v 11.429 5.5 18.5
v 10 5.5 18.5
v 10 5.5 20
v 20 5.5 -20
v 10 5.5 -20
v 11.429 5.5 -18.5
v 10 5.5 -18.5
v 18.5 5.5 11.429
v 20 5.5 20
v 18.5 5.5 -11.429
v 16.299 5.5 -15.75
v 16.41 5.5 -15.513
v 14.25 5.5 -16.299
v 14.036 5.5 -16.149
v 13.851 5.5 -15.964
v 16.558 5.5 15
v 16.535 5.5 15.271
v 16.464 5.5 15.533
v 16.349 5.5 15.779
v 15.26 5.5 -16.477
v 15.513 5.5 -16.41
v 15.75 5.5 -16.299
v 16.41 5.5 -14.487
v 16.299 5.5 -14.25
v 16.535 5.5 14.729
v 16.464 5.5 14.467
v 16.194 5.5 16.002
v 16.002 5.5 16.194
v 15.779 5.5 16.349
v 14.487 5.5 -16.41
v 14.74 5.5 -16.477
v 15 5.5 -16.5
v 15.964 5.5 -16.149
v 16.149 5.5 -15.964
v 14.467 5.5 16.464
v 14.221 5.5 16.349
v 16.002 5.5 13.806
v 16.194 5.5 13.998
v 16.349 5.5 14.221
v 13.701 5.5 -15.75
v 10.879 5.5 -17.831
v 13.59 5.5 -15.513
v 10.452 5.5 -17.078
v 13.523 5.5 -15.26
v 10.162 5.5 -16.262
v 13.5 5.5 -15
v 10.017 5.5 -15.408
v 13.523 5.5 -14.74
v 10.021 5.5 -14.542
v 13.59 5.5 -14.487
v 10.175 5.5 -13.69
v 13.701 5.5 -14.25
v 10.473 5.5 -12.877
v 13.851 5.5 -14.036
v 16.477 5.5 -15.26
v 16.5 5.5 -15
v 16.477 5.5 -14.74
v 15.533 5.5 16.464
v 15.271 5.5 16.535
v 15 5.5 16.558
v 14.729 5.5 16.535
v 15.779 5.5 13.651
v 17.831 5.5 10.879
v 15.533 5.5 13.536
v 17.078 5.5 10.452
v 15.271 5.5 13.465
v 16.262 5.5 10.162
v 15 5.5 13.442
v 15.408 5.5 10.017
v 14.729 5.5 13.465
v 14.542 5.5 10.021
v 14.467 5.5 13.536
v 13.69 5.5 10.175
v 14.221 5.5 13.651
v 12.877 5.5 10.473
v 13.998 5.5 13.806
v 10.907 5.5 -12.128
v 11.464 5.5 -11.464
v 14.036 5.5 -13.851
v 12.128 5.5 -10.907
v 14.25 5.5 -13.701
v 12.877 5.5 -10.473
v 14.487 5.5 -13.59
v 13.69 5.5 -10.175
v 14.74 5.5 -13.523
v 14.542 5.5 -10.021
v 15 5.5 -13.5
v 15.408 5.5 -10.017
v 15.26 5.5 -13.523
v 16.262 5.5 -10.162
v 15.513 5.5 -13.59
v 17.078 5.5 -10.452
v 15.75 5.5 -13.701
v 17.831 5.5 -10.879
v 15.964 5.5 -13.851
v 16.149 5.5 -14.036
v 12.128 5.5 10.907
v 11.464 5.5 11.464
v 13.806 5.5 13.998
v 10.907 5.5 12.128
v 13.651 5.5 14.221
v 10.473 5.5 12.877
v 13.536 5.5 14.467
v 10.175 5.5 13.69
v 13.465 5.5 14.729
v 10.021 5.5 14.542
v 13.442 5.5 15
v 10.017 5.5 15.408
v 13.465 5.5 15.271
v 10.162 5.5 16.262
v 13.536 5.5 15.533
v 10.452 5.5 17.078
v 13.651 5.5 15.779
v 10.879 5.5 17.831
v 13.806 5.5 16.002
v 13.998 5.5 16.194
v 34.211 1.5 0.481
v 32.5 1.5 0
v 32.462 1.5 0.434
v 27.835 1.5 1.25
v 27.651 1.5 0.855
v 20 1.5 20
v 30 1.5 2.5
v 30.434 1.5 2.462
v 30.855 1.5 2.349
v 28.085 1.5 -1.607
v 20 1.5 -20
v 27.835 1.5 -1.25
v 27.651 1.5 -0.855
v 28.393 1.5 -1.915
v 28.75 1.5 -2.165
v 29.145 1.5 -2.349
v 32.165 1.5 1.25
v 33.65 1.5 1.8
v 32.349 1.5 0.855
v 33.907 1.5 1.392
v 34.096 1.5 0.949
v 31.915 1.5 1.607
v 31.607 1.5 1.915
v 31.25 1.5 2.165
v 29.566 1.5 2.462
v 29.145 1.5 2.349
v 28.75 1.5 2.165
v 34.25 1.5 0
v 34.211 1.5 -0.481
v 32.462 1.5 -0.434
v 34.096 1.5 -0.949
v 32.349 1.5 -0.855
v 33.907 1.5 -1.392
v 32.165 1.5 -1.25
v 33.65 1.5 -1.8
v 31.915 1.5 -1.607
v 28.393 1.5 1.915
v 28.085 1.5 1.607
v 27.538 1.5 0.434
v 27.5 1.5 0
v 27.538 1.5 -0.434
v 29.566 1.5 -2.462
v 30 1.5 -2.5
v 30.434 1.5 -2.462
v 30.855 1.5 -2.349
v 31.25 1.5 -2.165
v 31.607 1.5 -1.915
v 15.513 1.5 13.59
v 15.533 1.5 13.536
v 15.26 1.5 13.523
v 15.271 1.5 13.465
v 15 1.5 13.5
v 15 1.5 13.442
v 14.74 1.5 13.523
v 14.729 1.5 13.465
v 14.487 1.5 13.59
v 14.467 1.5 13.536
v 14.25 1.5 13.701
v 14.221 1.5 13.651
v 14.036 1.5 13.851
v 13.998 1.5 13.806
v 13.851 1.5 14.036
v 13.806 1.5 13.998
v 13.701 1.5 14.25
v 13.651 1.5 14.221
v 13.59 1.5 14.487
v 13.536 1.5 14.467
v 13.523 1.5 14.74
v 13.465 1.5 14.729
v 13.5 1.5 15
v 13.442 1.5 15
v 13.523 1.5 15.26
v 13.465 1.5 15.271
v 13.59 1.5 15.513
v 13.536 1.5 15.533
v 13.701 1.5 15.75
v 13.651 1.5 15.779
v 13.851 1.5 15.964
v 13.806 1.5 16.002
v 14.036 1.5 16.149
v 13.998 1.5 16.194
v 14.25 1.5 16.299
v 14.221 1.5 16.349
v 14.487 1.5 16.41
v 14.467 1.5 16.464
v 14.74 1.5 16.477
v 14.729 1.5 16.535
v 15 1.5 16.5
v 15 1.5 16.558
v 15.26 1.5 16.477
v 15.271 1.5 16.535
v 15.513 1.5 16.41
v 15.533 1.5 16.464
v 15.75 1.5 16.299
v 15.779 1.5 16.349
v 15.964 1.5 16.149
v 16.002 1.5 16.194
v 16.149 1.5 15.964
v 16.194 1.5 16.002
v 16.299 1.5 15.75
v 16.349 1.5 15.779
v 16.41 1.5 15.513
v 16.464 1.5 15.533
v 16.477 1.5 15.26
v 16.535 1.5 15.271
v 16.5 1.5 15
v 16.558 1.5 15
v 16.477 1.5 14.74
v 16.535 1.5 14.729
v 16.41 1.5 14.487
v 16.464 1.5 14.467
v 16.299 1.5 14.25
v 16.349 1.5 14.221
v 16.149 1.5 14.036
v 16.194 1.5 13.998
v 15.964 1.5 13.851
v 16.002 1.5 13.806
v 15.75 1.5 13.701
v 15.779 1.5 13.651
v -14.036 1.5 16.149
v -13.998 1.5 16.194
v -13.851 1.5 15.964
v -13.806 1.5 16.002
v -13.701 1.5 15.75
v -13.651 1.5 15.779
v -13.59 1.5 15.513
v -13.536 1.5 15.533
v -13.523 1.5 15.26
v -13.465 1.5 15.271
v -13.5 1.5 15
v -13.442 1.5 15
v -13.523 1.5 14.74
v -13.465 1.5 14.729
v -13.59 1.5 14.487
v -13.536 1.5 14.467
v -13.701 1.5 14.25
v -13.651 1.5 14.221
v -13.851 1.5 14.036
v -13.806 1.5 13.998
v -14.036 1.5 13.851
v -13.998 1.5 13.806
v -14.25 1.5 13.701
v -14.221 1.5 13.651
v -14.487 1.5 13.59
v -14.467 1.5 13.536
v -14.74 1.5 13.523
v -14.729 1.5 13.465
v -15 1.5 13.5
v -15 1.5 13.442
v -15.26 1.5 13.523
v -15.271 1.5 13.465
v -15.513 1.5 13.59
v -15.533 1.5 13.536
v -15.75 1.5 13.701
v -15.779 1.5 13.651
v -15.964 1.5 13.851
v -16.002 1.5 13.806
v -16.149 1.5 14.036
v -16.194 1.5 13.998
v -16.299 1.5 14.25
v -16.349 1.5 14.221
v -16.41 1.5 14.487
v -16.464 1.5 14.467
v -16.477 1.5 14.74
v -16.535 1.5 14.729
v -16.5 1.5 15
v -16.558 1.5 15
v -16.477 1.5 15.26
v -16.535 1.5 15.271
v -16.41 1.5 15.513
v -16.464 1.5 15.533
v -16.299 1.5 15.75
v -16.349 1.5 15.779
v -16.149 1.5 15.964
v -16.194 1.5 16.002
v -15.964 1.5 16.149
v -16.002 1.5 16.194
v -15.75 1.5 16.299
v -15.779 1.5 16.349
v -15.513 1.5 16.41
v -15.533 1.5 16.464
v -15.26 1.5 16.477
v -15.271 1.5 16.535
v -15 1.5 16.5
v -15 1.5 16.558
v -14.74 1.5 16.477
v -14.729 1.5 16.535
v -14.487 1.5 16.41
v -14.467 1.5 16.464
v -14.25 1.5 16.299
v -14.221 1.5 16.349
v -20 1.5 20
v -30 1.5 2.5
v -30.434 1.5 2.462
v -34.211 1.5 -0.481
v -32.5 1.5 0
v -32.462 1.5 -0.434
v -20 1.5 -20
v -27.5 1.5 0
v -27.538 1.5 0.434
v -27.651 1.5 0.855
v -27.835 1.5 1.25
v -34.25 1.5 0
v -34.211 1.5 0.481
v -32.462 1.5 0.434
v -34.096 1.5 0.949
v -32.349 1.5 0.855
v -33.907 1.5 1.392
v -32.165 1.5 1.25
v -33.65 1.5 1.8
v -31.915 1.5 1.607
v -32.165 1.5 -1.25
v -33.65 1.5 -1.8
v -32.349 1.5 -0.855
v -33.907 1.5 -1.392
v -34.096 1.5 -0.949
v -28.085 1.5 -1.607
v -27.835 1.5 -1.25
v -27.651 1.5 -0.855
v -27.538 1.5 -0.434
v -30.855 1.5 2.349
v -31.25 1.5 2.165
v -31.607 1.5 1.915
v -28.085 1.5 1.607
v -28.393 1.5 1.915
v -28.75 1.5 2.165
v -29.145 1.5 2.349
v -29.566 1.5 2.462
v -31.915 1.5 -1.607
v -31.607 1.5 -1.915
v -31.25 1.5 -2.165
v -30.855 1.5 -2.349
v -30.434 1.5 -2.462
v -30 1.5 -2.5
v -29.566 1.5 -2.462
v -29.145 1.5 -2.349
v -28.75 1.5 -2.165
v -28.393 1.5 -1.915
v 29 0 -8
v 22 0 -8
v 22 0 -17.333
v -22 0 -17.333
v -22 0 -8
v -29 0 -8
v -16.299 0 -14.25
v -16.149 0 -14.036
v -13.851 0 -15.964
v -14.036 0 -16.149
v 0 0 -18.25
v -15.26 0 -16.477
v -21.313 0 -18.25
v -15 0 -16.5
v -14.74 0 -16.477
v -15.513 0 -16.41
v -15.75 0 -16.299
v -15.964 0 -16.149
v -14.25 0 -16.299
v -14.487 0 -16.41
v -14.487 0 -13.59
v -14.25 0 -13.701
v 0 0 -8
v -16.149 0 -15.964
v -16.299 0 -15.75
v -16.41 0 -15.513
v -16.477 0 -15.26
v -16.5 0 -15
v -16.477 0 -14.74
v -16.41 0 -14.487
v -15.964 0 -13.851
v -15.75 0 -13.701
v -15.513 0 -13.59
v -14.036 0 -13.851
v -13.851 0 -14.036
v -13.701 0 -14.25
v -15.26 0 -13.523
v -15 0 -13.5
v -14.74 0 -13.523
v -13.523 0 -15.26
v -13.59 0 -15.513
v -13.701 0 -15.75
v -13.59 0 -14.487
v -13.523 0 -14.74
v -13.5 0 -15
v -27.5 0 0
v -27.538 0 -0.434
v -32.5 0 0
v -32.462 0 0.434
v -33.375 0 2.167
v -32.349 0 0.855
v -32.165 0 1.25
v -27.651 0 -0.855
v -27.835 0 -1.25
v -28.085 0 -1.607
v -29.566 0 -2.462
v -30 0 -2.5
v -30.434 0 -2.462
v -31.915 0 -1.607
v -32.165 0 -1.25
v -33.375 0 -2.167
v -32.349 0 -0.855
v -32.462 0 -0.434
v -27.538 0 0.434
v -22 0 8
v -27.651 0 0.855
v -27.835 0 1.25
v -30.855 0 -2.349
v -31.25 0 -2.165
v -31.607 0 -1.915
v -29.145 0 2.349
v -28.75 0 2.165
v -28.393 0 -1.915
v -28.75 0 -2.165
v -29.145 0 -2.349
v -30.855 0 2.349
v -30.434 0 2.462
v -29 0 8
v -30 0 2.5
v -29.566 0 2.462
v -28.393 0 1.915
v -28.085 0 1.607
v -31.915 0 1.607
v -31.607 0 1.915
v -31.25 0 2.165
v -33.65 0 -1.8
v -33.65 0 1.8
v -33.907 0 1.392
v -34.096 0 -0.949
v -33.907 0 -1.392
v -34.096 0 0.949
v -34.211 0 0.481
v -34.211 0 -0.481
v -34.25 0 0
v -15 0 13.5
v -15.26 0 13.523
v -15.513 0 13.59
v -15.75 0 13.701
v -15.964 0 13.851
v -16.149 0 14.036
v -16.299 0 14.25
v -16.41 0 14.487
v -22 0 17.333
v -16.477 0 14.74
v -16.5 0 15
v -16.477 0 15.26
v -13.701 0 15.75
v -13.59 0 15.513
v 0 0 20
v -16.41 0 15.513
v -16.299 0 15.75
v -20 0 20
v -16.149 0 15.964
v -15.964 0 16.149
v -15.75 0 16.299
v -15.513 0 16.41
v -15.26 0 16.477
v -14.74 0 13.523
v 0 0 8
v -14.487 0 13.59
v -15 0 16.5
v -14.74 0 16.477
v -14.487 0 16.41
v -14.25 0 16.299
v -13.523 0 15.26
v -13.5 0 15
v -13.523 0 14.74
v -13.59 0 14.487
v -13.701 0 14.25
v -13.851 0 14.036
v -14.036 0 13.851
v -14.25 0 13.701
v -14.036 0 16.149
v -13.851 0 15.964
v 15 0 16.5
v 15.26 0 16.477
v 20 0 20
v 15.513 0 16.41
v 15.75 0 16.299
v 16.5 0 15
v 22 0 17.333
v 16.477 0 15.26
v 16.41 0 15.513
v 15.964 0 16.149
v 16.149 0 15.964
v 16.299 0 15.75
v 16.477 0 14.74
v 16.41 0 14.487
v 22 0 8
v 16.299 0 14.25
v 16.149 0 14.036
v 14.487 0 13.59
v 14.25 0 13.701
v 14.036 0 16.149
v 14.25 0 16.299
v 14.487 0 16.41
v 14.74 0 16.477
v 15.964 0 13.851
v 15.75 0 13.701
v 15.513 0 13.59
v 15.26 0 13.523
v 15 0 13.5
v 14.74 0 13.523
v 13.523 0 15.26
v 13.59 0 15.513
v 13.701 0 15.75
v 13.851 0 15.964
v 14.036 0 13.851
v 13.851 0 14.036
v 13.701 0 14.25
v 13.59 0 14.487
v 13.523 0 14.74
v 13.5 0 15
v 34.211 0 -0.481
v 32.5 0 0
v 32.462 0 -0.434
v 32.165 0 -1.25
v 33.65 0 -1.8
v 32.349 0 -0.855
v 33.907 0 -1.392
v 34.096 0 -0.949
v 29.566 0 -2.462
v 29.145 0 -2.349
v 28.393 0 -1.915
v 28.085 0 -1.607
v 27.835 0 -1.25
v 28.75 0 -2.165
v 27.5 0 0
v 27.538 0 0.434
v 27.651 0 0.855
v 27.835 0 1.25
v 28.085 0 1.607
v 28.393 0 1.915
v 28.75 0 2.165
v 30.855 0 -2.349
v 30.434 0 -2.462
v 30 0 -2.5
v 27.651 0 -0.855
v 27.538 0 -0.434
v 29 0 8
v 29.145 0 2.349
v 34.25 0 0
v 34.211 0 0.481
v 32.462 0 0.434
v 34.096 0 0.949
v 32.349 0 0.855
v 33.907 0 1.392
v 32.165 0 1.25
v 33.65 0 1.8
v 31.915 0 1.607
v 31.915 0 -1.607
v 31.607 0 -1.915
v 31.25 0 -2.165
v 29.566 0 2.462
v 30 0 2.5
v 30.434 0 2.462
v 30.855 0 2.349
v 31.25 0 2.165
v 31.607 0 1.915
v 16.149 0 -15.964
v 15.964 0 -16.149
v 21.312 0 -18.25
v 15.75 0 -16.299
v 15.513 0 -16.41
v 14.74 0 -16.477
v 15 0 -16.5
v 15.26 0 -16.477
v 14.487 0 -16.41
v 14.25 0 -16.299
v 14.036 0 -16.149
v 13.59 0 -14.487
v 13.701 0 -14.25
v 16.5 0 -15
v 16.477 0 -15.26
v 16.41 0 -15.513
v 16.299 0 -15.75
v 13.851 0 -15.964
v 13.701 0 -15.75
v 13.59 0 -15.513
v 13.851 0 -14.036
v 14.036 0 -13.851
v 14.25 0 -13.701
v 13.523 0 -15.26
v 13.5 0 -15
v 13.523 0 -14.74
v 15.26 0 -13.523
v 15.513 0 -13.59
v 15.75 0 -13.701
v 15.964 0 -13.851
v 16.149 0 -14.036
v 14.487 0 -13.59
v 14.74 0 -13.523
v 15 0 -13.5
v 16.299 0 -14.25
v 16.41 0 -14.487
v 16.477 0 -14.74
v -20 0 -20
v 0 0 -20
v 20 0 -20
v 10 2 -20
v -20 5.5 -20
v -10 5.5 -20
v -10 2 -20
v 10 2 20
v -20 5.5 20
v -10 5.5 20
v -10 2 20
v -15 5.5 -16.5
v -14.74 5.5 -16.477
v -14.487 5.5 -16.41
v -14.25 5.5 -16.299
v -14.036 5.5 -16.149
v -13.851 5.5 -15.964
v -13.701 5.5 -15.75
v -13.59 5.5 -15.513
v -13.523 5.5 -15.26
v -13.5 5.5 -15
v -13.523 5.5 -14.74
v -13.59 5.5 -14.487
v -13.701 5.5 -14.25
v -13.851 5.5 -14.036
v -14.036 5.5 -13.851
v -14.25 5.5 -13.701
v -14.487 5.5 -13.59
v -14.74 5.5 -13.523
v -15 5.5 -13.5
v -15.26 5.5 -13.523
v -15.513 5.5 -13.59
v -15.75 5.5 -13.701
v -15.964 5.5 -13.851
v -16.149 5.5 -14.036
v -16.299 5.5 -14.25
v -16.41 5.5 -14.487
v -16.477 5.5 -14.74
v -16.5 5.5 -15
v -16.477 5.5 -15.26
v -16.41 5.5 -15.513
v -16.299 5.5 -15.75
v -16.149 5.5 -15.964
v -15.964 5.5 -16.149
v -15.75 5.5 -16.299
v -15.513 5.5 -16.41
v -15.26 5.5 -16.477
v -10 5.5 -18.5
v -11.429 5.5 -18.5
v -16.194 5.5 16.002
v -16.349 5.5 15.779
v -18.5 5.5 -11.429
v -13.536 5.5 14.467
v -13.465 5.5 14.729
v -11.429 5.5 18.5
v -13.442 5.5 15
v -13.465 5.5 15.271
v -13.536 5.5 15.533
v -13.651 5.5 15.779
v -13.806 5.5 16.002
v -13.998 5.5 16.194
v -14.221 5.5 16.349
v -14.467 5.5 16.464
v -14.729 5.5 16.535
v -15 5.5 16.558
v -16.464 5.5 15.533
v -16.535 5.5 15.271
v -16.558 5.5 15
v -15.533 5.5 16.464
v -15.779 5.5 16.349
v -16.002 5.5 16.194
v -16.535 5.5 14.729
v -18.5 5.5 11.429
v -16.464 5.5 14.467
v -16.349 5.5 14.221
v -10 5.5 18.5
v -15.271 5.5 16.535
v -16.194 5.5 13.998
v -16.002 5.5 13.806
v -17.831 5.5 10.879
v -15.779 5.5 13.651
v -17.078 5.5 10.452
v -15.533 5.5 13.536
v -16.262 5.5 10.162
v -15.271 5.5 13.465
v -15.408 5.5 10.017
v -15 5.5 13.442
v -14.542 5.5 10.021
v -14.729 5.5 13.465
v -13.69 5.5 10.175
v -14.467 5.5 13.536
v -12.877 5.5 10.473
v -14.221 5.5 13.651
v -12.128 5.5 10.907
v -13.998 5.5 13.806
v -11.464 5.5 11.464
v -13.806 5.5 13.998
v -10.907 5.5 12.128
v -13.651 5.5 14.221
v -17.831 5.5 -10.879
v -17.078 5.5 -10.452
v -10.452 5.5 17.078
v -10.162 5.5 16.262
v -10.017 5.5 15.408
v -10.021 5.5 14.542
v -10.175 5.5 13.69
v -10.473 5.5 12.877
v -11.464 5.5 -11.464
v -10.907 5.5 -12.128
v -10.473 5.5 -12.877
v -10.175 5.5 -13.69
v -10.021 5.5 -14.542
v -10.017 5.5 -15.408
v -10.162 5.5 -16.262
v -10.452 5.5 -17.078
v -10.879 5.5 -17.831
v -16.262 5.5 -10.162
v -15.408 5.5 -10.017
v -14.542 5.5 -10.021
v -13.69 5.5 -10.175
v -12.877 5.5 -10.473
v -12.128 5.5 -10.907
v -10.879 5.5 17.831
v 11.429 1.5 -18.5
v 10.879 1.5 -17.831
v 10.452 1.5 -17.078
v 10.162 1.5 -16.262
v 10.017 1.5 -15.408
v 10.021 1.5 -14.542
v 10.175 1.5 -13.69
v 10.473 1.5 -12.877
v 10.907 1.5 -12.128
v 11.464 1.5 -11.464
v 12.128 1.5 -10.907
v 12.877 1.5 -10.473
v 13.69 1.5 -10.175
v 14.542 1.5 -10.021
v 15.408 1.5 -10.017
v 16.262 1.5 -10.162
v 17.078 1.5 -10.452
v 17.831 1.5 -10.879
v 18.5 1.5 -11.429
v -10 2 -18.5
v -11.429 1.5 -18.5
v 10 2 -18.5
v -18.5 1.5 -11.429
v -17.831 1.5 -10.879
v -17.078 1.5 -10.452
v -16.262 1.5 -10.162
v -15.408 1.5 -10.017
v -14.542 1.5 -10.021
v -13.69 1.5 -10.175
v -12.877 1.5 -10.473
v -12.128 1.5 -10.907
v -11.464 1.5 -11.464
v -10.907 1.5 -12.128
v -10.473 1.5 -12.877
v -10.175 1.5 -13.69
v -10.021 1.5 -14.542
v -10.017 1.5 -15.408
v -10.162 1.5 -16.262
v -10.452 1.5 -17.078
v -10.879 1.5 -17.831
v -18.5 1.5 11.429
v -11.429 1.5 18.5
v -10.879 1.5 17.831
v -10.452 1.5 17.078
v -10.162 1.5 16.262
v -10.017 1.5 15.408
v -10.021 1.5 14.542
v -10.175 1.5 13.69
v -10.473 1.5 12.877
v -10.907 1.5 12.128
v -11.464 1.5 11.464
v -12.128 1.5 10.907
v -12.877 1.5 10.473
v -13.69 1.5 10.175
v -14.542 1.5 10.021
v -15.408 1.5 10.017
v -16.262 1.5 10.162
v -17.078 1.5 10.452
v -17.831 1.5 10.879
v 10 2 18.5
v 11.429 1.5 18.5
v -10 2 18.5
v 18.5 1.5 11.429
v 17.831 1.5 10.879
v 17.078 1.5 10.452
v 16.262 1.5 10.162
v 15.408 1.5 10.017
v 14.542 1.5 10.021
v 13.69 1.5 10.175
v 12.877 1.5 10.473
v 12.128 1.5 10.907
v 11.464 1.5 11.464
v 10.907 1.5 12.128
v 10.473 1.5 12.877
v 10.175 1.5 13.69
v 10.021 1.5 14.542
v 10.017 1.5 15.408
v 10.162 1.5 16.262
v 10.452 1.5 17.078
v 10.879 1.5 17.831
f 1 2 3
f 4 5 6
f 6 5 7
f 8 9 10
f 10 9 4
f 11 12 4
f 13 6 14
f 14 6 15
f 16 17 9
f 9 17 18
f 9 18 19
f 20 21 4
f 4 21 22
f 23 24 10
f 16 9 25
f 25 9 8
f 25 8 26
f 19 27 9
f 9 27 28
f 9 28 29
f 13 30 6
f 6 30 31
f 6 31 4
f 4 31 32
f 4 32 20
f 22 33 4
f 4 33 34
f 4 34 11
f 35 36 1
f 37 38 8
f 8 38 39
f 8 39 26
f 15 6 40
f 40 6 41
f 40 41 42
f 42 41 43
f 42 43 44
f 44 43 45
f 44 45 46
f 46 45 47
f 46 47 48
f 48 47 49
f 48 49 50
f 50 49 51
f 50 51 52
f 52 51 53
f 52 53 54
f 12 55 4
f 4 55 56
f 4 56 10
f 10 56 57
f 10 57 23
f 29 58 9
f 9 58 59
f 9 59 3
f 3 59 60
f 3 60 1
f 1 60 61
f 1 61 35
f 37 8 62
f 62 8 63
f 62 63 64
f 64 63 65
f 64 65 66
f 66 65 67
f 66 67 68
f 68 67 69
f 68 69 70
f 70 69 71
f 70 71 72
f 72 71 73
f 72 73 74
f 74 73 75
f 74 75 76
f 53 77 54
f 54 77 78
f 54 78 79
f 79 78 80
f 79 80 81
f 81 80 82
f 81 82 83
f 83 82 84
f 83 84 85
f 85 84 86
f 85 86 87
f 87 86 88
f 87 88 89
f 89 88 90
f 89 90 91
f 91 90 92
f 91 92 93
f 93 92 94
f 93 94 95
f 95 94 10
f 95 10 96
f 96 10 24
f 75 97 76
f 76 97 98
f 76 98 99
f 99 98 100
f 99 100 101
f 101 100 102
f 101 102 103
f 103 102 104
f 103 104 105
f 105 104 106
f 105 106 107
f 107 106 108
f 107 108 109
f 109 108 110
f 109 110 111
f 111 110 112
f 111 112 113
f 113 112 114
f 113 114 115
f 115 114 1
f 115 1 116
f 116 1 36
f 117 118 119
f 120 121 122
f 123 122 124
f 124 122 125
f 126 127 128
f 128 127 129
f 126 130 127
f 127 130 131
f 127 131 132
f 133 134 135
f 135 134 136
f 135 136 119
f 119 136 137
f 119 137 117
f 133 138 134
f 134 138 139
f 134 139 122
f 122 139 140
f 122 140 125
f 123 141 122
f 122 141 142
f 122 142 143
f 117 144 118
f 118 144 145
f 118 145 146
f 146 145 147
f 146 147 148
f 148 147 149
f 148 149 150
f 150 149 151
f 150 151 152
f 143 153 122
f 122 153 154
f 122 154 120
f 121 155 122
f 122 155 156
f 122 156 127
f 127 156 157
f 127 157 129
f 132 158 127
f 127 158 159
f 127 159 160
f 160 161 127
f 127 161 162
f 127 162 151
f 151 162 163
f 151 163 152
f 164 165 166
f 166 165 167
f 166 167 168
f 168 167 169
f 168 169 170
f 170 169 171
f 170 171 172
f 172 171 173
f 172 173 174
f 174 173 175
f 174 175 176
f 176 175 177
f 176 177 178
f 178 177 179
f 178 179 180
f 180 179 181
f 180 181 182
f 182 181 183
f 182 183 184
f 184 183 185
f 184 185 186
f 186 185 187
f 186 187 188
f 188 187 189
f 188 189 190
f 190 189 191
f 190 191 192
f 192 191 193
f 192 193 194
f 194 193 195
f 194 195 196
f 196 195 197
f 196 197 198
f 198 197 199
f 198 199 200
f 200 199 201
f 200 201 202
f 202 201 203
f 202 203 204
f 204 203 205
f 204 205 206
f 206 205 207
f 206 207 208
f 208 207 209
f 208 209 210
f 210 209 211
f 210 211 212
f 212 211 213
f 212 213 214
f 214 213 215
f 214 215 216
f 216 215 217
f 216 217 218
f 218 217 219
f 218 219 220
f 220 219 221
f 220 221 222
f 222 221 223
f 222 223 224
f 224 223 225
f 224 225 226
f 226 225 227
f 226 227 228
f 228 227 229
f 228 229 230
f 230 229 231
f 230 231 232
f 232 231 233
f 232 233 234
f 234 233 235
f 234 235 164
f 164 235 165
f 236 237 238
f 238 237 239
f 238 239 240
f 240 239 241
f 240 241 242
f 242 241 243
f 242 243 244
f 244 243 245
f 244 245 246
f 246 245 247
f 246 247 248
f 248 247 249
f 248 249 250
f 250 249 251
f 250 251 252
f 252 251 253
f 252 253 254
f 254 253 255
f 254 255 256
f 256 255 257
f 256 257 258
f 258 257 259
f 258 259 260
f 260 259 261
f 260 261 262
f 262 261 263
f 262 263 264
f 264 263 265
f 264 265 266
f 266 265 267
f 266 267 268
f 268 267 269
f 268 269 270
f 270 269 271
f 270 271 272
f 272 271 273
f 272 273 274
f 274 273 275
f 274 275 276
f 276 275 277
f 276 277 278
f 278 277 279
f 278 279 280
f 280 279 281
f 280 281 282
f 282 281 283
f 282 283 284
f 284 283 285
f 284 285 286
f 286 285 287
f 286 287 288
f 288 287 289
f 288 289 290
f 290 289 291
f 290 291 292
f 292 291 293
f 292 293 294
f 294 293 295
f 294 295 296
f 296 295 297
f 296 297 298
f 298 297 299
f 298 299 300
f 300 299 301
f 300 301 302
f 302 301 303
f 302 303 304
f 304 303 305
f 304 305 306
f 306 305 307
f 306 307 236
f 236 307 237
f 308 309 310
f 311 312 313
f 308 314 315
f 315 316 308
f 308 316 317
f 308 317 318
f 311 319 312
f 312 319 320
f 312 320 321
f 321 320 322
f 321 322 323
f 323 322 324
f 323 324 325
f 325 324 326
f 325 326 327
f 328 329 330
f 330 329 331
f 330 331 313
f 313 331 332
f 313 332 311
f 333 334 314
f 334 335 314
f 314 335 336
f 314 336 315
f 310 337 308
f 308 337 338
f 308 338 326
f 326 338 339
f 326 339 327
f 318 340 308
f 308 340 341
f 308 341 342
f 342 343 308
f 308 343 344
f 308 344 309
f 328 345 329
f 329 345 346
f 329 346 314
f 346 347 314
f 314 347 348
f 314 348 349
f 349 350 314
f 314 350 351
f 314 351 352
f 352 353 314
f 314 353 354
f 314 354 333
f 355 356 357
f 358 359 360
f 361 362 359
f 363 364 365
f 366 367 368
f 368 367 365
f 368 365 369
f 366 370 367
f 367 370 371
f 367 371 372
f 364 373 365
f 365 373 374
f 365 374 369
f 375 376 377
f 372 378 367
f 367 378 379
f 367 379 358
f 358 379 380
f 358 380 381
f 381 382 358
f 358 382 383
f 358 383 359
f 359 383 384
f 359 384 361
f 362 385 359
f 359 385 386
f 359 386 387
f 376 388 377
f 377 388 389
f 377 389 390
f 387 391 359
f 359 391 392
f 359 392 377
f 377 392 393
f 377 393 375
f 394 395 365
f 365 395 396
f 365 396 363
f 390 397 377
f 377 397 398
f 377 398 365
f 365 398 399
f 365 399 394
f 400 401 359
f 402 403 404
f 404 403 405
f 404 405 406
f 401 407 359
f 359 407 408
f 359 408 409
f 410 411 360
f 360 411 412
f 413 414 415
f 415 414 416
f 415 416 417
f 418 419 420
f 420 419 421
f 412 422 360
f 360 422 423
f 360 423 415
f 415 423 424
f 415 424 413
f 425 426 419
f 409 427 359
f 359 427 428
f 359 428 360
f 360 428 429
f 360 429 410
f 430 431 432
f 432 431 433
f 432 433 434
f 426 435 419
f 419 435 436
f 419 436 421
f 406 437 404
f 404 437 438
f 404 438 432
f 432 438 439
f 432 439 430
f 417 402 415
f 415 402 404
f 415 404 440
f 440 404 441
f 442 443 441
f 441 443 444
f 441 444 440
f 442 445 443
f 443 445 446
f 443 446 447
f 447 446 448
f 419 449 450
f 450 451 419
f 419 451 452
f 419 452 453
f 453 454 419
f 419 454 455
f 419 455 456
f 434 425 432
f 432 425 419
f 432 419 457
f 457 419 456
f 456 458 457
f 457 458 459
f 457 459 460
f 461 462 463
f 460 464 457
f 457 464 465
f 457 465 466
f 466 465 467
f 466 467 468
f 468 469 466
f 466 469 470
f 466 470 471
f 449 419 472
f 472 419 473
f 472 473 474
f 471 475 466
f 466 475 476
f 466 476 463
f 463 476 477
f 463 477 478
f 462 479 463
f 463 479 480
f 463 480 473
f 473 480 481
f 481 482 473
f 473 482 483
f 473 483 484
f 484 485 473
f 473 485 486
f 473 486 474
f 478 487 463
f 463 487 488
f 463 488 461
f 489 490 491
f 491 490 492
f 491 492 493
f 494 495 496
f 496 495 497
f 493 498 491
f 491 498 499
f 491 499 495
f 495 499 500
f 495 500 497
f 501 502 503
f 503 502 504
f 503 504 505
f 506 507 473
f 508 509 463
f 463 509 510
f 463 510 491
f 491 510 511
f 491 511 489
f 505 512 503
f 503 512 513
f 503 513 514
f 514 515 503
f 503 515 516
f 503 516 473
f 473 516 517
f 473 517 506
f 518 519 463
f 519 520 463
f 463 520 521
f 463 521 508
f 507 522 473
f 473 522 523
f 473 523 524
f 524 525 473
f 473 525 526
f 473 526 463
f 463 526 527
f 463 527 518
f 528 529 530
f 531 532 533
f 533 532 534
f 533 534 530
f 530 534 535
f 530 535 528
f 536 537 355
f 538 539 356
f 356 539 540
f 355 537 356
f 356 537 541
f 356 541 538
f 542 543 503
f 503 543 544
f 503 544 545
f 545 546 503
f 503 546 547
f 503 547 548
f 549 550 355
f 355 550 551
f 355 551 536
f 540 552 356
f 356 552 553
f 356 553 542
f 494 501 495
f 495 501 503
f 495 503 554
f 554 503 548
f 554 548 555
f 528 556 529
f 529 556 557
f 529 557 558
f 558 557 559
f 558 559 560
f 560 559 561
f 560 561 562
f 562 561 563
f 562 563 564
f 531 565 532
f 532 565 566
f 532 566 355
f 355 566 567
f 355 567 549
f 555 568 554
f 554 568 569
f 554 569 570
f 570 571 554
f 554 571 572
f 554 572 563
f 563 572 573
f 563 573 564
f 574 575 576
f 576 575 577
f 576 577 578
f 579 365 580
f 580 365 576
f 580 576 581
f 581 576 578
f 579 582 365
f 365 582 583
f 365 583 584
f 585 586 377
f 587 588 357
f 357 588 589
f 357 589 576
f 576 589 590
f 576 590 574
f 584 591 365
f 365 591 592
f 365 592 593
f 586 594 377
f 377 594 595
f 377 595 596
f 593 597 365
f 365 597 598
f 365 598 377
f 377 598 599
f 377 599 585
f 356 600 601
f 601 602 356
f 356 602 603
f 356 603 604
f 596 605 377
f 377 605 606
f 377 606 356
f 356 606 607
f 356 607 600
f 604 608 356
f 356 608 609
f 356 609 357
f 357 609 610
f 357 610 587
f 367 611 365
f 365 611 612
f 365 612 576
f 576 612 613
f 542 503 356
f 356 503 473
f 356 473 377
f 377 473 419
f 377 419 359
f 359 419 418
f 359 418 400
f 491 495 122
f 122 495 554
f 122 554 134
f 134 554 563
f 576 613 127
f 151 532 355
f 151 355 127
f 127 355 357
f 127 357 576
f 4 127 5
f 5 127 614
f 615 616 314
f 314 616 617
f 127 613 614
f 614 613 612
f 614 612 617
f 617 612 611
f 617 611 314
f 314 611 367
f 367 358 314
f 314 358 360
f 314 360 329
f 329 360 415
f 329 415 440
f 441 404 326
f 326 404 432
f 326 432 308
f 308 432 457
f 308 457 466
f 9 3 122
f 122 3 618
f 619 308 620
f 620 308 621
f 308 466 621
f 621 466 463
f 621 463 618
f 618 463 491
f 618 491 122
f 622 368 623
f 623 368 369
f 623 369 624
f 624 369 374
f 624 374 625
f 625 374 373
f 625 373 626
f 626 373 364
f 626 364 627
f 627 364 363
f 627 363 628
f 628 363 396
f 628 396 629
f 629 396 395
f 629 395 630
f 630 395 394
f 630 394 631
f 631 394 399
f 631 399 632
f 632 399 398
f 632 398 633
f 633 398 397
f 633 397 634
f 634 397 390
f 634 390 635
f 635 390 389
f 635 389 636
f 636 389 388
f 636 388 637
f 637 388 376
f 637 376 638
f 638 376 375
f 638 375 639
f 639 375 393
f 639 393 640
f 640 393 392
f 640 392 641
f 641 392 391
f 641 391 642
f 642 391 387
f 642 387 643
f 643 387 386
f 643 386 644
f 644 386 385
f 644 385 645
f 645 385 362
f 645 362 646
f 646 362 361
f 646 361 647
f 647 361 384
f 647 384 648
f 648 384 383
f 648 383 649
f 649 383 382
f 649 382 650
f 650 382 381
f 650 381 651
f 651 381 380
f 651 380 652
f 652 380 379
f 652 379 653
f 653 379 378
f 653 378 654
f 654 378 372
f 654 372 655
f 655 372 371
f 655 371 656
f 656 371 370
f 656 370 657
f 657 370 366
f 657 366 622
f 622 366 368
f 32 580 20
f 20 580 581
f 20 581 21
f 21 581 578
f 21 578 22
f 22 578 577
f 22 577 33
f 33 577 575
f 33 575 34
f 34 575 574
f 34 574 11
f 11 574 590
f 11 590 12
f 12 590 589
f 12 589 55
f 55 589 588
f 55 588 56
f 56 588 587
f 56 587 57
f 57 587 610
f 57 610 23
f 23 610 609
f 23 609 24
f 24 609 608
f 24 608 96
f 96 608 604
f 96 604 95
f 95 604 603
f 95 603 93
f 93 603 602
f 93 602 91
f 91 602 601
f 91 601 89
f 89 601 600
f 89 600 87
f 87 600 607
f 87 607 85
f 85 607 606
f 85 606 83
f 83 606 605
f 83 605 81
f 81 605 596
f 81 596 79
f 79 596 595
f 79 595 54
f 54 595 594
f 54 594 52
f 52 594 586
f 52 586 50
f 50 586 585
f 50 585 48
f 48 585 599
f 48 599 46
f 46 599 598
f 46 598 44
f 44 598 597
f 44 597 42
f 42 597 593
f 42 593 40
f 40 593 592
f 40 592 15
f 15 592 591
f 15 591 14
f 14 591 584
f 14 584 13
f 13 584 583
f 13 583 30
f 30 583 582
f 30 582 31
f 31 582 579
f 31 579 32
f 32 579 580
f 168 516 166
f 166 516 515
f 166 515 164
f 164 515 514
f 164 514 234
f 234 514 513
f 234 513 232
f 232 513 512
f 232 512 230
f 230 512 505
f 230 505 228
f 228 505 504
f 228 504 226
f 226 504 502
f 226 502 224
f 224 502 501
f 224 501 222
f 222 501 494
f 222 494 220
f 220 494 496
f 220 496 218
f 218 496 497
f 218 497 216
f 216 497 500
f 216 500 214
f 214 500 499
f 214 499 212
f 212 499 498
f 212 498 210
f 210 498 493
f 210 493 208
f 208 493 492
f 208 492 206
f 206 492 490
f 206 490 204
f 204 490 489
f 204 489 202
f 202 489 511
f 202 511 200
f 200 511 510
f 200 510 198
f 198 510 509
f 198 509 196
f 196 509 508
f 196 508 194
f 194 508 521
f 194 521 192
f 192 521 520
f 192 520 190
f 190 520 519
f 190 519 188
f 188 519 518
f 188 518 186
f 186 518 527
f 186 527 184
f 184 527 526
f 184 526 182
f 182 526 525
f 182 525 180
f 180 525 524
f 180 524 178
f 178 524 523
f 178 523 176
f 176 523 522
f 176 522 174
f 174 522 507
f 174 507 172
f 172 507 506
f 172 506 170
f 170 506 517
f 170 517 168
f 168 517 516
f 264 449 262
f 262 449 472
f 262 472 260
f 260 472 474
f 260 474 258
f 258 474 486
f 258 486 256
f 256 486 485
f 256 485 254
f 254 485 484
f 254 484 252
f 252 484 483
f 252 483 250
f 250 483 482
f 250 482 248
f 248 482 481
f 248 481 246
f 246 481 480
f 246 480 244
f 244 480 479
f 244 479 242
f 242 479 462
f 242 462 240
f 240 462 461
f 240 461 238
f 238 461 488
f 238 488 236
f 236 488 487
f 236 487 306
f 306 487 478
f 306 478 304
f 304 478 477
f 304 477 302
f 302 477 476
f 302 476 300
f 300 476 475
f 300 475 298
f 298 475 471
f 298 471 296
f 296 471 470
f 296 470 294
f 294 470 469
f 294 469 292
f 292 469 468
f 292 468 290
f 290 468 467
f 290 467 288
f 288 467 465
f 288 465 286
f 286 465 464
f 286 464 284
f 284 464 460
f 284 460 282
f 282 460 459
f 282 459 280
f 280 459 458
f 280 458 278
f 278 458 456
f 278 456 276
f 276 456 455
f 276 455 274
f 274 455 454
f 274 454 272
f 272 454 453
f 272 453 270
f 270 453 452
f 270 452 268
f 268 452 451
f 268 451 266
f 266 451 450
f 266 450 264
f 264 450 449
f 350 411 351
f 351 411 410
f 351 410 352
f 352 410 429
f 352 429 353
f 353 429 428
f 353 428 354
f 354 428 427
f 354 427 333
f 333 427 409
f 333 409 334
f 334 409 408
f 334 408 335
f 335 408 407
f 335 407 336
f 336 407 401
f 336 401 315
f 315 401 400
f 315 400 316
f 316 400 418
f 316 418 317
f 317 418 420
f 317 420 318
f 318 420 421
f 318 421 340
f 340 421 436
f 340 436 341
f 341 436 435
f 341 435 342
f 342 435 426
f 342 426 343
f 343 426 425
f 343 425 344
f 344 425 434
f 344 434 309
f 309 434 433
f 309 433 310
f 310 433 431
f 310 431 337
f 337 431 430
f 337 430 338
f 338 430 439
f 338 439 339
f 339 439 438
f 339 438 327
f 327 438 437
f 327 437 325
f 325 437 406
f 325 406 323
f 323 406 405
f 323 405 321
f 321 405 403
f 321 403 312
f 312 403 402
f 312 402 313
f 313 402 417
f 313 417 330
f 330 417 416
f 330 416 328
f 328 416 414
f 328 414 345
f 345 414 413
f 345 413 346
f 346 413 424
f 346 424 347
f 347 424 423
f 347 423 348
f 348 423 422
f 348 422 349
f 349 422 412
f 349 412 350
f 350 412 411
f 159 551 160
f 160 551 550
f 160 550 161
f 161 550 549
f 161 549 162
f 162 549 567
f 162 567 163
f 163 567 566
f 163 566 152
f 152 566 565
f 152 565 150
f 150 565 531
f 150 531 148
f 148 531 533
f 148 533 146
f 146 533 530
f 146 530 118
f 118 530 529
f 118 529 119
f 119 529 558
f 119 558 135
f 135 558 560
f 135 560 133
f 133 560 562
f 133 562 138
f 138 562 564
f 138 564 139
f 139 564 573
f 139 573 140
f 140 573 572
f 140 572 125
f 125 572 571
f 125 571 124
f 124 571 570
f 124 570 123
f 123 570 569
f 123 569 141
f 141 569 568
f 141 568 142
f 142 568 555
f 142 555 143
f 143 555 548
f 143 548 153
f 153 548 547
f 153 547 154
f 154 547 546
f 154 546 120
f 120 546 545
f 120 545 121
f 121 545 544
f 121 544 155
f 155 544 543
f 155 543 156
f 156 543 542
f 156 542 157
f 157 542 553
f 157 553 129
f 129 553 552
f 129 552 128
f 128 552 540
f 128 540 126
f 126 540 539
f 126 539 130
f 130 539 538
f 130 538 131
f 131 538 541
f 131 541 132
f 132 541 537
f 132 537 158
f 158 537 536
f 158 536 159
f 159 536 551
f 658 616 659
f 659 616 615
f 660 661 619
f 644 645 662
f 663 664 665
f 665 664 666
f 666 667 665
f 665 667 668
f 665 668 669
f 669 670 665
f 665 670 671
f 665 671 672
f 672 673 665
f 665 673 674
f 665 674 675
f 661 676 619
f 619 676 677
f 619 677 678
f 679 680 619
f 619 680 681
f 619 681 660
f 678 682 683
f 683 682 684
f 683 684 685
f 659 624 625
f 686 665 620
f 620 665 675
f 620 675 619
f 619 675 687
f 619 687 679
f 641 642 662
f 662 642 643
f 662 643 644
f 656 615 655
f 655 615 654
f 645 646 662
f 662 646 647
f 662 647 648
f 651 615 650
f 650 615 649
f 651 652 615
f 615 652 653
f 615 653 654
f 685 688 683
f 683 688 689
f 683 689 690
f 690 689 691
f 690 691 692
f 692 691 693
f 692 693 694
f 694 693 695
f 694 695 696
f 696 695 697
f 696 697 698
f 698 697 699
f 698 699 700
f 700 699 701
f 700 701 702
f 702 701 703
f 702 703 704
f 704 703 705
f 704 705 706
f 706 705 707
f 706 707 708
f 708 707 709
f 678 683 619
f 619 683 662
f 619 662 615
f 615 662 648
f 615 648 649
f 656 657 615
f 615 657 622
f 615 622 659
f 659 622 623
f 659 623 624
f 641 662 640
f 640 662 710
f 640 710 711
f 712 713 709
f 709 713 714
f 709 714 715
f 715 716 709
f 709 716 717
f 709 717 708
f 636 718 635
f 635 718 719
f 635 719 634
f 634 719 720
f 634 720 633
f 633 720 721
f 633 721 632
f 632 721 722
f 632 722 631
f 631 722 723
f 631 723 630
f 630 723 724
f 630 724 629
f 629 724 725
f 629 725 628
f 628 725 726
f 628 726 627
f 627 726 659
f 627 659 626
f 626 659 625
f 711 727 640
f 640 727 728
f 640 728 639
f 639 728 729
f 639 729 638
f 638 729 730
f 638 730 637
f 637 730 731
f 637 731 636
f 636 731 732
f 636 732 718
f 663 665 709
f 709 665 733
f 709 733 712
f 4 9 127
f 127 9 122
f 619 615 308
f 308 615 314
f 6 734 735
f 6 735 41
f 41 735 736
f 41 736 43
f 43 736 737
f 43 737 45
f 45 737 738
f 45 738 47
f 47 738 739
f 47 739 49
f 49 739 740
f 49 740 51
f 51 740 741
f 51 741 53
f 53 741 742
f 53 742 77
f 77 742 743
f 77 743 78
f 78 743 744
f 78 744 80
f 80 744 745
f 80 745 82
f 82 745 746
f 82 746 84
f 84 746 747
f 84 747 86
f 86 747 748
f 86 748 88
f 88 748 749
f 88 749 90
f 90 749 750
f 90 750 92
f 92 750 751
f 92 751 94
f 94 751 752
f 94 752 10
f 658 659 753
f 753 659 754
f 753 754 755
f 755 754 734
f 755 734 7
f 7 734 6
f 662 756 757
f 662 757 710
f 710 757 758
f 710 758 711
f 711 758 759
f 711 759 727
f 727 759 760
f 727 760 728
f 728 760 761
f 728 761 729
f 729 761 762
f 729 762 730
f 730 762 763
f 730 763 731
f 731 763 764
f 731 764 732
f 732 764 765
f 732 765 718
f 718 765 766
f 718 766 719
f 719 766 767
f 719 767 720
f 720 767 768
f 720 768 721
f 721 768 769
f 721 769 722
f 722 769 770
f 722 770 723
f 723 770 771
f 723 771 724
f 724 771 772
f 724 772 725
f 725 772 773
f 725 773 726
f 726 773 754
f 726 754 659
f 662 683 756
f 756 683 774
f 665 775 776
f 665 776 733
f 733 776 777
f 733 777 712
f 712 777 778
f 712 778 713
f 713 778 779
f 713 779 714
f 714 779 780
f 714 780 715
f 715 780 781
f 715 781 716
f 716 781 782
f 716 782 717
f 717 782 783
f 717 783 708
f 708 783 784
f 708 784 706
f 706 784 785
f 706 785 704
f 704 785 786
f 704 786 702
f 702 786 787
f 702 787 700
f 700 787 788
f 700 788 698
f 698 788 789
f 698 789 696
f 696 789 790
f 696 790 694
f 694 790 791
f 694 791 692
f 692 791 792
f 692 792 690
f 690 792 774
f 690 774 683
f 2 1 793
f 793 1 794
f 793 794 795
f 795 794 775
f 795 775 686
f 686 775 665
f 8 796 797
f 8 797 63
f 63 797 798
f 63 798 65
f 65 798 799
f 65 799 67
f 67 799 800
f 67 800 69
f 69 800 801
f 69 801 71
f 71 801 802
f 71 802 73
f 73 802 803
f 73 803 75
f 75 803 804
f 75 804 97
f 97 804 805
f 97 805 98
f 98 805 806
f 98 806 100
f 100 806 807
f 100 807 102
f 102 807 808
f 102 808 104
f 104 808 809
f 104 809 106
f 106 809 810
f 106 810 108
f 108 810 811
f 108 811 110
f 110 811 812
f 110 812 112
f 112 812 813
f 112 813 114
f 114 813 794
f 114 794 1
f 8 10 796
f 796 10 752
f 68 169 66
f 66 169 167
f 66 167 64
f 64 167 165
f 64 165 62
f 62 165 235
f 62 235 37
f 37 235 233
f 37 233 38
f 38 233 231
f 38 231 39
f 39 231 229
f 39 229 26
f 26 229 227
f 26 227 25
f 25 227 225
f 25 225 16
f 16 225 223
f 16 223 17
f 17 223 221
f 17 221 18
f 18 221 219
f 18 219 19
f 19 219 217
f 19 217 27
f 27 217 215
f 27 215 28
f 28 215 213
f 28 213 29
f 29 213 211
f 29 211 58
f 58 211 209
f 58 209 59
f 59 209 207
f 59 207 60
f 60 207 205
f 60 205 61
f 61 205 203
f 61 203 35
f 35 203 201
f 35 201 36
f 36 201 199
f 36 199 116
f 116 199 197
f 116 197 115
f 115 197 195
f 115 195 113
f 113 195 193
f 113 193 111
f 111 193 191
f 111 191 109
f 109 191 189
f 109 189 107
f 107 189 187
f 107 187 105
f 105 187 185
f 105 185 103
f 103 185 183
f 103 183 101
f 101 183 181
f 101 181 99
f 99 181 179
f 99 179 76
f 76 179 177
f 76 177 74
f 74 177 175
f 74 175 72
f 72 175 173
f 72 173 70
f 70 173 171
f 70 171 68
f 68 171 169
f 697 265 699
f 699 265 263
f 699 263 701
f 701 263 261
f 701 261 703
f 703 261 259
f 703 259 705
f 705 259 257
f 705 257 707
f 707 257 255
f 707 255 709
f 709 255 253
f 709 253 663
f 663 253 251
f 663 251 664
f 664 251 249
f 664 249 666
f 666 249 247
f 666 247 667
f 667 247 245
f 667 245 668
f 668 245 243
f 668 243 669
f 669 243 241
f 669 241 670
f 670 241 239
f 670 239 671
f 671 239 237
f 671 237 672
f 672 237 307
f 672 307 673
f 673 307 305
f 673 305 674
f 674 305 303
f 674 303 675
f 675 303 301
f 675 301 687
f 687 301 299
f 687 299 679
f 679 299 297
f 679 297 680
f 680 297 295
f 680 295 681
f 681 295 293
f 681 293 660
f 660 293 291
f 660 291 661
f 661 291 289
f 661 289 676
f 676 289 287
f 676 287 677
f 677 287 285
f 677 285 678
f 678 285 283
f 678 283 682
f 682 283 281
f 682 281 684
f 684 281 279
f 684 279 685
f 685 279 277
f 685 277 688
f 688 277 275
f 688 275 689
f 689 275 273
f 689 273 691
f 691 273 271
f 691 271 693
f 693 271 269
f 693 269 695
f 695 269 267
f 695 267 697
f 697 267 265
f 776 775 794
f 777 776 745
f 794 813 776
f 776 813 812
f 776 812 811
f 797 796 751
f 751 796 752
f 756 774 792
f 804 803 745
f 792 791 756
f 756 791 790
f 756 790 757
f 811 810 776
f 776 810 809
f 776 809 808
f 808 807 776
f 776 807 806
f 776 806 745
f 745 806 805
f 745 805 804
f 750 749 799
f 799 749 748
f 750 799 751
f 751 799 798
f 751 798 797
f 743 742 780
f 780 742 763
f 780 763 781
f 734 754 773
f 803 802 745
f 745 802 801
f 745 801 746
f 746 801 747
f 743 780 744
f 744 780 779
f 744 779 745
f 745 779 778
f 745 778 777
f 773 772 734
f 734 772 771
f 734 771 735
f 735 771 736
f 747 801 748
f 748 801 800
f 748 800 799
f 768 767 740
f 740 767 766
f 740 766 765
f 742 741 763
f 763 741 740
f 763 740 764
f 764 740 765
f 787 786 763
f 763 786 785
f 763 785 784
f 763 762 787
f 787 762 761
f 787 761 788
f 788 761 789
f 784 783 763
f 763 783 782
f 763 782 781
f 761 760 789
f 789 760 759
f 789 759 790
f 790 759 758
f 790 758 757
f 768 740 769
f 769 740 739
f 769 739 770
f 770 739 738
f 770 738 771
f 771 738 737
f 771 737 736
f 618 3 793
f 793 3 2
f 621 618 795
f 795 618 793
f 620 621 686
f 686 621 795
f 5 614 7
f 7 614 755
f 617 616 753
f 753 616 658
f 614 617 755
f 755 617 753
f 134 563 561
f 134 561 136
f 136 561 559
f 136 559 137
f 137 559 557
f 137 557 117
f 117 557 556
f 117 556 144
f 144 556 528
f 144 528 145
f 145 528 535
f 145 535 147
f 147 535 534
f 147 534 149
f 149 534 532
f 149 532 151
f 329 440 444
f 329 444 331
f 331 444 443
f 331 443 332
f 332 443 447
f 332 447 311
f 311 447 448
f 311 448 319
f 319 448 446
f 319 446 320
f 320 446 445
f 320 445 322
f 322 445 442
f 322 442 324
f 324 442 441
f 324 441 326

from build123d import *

# Parameters (mm, degrees)
SKETCH1_R           = 1.5
SKETCH1_R_2         = 2.5
BOSS_EXTRUDE1_DEPTH = 1.5
SKETCH2_W           = 40
SKETCH2_H           = 40
SKETCH2_R           = 1.5
SKETCH2_R_2         = 1.558204887
BOSS_EXTRUDE2_DEPTH = 4
SKETCH3_W           = 20
SKETCH3_H           = 3.5
CUT_EXTRUDE1_DEPTH  = 2
SKETCH4_W           = 20
SKETCH4_H           = 3.5
CUT_EXTRUDE2_DEPTH  = 2
FILLET1_R           = 3


with BuildPart() as part:
    # Sketch1 → Boss-Extrude1 (new body)
    with BuildSketch(Plane(origin=(0, 0, 0), x_dir=(1, 0, 0), z_dir=(0, 1, 0))):
        Polygon((-20, 20), (20, 20), (35, 0), (20, -20), (-20, -20), (-35, 0), align=None)
        with Locations(Location((-15, 15, 0), (0, 0, 270))):
            Circle(SKETCH1_R, mode=Mode.SUBTRACT)
        with Locations(Location((15, 15, 0), (0, 0, 270))):
            Circle(SKETCH1_R, mode=Mode.SUBTRACT)
        with Locations(Location((15, -15, 0), (0, 0, 90))):
            Circle(SKETCH1_R, mode=Mode.SUBTRACT)
        with Locations(Location((-15, -15, 0), (0, 0, 90))):
            Circle(SKETCH1_R, mode=Mode.SUBTRACT)
        with Locations(Location((-30, 0, 0), (0, 0, 270))):
            Circle(SKETCH1_R_2, mode=Mode.SUBTRACT)
        with Locations(Location((30, 0, 0), (0, 0, 90))):
            Circle(SKETCH1_R_2, mode=Mode.SUBTRACT)
    extrude(amount=BOSS_EXTRUDE1_DEPTH)

    # Sketch2 → Boss-Extrude2 (add)
    with BuildSketch(Plane(origin=(0, 1.5, 0), x_dir=(1, 0, 0), z_dir=(0, 1, 0))):
        Rectangle(SKETCH2_W, SKETCH2_H)
        with Locations(Location((-15, 15, 0), (0, 0, 270))):
            Circle(SKETCH2_R, mode=Mode.SUBTRACT)
        with Locations(Location((15, -15, 0), (0, 0, 270))):
            Circle(SKETCH2_R_2, mode=Mode.SUBTRACT)
        with Locations(Location((-15, -15, 0), (0, 0, 90))):
            Circle(SKETCH2_R_2, mode=Mode.SUBTRACT)
        with Locations(Location((15, 15, 0), (0, 0, 90))):
            Circle(SKETCH2_R, mode=Mode.SUBTRACT)
        with BuildLine():
            Line((-18.5, 11.429285786), (-18.5, -11.429285786))
            ThreePointArc((-18.5, -11.429285786), (-11.464466094, -11.464466094), (-11.429285786, -18.5))
            Line((-11.429285786, -18.5), (11.429285786, -18.5))
            ThreePointArc((11.429285786, -18.5), (11.464466094, -11.464466094), (18.5, -11.429285786))
            Line((18.5, -11.429285786), (18.5, 11.429285786))
            ThreePointArc((18.5, 11.429285786), (11.464466094, 11.464466094), (11.429285786, 18.5))
            Line((11.429285786, 18.5), (-11.429285786, 18.5))
            ThreePointArc((-11.429285786, 18.5), (-11.464466094, 11.464466094), (-18.5, 11.429285786))
        make_face(mode=Mode.SUBTRACT)
    extrude(amount=BOSS_EXTRUDE2_DEPTH)

    # Sketch3 → Cut-Extrude1 (cut)
    with BuildSketch(Plane.XY.offset(20)):
        with Locations((0, 3.75)):
            Rectangle(SKETCH3_W, SKETCH3_H)
    extrude(amount=-CUT_EXTRUDE1_DEPTH, mode=Mode.SUBTRACT)

    # Sketch4 → Cut-Extrude2 (cut)
    with BuildSketch(Plane(origin=(0, 0, -20), x_dir=(-1, 0, 0), z_dir=(0, 0, -1))):
        with Locations((0, 3.75)):
            Rectangle(SKETCH4_W, SKETCH4_H)
    extrude(amount=-CUT_EXTRUDE2_DEPTH, mode=Mode.SUBTRACT)

    # Fillet1
    fillet1_edges = [part.edges().sort_by_distance(p)[0] for p in [
        (-35, 0.75, 0),
        (35, 0.75, 0),
    ]]
    fillet(fillet1_edges, radius=FILLET1_R)


solid = part.part
